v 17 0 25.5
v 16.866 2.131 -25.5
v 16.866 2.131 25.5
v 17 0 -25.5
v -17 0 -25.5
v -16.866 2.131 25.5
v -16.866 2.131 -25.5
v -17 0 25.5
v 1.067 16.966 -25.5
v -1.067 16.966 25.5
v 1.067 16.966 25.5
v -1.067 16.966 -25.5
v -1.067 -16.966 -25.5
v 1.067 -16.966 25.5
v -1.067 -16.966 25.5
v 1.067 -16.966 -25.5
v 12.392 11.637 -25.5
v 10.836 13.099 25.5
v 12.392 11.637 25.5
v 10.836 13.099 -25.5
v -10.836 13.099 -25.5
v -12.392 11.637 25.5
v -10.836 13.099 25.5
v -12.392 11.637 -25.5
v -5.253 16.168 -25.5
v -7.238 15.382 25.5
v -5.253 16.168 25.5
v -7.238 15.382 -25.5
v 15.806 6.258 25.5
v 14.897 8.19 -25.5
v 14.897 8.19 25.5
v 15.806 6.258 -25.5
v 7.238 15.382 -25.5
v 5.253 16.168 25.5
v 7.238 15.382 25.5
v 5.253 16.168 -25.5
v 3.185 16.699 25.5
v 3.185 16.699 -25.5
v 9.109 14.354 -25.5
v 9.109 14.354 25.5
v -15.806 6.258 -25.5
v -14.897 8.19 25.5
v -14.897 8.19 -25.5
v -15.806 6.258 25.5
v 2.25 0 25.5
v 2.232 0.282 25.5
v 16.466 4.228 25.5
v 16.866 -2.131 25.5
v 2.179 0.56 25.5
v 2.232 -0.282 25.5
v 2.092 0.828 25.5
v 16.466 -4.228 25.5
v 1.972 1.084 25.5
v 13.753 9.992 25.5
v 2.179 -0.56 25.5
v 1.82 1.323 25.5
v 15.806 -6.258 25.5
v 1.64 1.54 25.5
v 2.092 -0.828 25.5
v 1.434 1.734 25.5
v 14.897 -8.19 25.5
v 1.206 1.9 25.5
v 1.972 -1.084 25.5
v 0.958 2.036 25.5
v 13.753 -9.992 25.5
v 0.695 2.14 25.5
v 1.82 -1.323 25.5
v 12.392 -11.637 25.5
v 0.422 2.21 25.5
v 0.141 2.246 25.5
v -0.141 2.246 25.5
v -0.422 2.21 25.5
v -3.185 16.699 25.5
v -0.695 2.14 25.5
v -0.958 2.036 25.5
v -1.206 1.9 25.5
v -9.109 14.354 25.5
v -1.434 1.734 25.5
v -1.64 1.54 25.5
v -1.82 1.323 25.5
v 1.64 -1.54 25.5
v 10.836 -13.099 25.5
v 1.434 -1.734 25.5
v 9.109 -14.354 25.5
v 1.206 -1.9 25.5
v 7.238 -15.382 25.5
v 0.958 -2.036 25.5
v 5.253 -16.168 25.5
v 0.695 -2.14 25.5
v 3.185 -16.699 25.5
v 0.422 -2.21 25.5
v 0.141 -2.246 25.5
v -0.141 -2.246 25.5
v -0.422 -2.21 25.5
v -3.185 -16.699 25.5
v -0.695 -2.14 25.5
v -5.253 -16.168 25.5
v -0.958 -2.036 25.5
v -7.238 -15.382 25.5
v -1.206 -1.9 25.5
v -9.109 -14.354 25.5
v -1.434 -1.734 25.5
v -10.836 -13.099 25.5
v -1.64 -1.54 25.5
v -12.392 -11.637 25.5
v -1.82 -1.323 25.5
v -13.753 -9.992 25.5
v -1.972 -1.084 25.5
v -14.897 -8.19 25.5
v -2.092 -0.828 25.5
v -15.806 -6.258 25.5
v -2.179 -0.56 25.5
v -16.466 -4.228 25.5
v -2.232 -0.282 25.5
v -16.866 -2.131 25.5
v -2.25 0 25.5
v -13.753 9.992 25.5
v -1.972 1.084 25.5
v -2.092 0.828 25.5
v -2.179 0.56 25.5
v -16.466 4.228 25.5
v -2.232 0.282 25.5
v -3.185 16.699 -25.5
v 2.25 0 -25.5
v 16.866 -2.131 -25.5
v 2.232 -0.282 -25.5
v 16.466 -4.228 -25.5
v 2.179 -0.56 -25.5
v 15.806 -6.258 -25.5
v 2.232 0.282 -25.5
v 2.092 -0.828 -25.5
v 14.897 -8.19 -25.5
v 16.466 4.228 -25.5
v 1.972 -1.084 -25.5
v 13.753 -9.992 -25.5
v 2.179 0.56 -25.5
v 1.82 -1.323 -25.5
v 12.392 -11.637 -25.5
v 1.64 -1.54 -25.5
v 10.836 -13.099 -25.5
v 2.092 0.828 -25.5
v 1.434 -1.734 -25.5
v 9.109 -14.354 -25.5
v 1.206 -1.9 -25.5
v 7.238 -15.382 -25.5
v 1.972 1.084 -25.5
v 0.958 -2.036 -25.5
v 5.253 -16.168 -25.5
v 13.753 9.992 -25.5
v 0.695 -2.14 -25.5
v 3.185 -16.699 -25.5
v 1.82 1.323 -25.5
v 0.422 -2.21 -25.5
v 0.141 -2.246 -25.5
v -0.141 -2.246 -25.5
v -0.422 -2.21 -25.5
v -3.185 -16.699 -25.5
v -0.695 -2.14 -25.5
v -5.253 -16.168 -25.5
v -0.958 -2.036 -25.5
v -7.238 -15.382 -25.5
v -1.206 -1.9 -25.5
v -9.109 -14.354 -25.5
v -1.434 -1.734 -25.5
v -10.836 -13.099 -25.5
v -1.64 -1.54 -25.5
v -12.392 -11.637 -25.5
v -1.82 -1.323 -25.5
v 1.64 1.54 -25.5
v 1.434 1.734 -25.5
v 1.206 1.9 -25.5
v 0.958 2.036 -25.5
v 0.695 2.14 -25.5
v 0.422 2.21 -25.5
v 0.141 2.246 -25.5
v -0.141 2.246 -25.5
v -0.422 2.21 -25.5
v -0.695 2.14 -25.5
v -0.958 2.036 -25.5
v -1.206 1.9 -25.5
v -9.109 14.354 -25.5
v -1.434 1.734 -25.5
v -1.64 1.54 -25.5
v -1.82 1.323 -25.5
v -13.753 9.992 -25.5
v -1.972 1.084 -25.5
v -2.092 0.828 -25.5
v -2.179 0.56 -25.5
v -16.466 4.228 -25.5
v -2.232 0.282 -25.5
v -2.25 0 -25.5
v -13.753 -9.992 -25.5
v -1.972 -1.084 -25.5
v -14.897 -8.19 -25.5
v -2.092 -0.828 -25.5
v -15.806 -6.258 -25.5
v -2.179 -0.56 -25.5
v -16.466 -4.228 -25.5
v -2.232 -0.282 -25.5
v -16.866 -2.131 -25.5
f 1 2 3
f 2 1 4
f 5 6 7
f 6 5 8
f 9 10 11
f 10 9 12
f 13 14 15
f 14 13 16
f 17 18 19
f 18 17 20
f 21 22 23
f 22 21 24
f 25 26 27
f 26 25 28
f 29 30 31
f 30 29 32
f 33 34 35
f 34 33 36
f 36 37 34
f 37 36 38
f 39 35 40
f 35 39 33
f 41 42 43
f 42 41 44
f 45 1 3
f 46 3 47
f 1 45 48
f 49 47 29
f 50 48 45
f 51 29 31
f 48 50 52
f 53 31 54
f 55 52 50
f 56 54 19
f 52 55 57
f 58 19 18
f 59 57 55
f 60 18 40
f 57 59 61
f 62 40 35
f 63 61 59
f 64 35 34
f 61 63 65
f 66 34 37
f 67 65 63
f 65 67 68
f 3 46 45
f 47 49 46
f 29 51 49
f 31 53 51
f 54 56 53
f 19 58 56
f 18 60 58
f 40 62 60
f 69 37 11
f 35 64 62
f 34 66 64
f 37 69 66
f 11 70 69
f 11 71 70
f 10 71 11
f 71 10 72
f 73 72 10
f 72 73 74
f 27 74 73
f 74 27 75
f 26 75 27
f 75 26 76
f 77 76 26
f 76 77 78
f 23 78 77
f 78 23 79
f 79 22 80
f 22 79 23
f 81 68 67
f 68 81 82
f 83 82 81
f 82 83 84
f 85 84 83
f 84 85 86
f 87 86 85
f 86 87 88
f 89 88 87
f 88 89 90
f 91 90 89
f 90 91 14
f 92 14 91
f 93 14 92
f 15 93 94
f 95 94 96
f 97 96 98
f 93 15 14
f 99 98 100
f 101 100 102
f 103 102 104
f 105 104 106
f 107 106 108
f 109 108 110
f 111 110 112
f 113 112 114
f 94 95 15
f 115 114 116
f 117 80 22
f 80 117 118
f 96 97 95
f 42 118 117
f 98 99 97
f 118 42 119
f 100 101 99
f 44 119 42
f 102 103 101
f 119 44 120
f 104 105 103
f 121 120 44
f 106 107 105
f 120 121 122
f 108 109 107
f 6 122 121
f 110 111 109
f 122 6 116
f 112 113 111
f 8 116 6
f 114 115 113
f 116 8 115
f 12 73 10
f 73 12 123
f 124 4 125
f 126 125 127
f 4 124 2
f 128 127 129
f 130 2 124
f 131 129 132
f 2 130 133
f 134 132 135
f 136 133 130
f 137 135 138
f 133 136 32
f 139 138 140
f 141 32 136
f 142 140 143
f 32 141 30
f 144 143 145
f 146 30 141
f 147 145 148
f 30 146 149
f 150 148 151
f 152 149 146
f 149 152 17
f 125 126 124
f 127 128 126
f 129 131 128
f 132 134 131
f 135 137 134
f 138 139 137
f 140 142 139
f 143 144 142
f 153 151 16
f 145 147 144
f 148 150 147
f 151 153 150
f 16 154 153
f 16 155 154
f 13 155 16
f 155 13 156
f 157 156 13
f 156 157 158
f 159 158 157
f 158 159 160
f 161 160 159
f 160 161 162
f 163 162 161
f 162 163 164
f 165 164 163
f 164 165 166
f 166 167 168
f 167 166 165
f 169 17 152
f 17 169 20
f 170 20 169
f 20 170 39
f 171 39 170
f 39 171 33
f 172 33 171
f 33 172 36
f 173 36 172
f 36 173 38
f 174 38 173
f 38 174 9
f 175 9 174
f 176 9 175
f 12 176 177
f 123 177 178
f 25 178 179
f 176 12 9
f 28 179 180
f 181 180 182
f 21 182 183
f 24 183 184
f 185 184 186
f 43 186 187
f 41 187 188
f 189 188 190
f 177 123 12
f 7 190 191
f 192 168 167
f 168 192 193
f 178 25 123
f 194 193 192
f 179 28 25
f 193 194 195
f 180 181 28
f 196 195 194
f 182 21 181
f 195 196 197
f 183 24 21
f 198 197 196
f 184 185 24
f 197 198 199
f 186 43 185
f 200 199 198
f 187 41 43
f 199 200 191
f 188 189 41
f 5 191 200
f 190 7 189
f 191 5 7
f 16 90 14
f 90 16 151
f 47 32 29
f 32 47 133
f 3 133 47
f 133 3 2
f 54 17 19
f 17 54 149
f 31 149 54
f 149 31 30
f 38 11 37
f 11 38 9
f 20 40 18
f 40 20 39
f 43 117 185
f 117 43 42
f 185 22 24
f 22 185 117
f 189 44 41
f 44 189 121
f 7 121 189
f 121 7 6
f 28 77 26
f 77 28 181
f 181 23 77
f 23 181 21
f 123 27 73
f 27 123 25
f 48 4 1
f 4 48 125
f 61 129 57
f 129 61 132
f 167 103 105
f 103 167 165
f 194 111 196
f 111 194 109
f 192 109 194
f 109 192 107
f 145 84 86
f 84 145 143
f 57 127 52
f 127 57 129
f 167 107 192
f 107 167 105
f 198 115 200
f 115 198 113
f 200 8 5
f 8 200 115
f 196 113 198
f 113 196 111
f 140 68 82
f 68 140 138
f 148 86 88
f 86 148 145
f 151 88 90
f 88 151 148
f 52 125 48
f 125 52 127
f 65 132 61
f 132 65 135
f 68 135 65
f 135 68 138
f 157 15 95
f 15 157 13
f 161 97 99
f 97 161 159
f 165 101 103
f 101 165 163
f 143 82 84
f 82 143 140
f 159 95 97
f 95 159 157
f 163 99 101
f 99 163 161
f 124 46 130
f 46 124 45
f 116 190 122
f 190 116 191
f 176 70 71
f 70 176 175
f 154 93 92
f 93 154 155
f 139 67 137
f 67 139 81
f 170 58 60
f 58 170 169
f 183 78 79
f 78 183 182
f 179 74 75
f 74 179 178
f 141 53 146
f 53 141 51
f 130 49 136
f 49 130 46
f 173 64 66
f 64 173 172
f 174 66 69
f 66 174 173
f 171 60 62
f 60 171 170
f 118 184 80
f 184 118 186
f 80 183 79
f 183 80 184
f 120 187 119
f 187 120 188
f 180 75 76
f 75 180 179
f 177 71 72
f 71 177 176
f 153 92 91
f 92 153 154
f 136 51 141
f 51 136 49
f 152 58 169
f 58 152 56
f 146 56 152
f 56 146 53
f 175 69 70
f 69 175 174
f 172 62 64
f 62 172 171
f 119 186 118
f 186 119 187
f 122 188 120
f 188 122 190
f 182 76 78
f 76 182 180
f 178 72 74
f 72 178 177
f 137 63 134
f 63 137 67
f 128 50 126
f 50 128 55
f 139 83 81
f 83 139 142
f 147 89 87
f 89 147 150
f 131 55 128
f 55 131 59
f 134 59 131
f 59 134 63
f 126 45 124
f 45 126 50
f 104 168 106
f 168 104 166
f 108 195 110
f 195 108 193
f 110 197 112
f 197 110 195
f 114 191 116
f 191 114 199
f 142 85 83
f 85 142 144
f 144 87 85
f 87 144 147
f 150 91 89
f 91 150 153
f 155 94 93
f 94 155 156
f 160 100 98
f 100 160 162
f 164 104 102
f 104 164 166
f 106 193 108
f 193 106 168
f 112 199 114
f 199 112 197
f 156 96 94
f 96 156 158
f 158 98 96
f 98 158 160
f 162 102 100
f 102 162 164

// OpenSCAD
$fn = 50;


difference() {
	union() {
		translate(v = [0, 0, -25.5000000000]) {
			cylinder(h = 51, r = 17.0000000000);
		}
	}
	union() {
		translate(v = [0, 0, -100.0000000000]) {
			cylinder(h = 200, r = 2.2500000000);
		}
	}
}
